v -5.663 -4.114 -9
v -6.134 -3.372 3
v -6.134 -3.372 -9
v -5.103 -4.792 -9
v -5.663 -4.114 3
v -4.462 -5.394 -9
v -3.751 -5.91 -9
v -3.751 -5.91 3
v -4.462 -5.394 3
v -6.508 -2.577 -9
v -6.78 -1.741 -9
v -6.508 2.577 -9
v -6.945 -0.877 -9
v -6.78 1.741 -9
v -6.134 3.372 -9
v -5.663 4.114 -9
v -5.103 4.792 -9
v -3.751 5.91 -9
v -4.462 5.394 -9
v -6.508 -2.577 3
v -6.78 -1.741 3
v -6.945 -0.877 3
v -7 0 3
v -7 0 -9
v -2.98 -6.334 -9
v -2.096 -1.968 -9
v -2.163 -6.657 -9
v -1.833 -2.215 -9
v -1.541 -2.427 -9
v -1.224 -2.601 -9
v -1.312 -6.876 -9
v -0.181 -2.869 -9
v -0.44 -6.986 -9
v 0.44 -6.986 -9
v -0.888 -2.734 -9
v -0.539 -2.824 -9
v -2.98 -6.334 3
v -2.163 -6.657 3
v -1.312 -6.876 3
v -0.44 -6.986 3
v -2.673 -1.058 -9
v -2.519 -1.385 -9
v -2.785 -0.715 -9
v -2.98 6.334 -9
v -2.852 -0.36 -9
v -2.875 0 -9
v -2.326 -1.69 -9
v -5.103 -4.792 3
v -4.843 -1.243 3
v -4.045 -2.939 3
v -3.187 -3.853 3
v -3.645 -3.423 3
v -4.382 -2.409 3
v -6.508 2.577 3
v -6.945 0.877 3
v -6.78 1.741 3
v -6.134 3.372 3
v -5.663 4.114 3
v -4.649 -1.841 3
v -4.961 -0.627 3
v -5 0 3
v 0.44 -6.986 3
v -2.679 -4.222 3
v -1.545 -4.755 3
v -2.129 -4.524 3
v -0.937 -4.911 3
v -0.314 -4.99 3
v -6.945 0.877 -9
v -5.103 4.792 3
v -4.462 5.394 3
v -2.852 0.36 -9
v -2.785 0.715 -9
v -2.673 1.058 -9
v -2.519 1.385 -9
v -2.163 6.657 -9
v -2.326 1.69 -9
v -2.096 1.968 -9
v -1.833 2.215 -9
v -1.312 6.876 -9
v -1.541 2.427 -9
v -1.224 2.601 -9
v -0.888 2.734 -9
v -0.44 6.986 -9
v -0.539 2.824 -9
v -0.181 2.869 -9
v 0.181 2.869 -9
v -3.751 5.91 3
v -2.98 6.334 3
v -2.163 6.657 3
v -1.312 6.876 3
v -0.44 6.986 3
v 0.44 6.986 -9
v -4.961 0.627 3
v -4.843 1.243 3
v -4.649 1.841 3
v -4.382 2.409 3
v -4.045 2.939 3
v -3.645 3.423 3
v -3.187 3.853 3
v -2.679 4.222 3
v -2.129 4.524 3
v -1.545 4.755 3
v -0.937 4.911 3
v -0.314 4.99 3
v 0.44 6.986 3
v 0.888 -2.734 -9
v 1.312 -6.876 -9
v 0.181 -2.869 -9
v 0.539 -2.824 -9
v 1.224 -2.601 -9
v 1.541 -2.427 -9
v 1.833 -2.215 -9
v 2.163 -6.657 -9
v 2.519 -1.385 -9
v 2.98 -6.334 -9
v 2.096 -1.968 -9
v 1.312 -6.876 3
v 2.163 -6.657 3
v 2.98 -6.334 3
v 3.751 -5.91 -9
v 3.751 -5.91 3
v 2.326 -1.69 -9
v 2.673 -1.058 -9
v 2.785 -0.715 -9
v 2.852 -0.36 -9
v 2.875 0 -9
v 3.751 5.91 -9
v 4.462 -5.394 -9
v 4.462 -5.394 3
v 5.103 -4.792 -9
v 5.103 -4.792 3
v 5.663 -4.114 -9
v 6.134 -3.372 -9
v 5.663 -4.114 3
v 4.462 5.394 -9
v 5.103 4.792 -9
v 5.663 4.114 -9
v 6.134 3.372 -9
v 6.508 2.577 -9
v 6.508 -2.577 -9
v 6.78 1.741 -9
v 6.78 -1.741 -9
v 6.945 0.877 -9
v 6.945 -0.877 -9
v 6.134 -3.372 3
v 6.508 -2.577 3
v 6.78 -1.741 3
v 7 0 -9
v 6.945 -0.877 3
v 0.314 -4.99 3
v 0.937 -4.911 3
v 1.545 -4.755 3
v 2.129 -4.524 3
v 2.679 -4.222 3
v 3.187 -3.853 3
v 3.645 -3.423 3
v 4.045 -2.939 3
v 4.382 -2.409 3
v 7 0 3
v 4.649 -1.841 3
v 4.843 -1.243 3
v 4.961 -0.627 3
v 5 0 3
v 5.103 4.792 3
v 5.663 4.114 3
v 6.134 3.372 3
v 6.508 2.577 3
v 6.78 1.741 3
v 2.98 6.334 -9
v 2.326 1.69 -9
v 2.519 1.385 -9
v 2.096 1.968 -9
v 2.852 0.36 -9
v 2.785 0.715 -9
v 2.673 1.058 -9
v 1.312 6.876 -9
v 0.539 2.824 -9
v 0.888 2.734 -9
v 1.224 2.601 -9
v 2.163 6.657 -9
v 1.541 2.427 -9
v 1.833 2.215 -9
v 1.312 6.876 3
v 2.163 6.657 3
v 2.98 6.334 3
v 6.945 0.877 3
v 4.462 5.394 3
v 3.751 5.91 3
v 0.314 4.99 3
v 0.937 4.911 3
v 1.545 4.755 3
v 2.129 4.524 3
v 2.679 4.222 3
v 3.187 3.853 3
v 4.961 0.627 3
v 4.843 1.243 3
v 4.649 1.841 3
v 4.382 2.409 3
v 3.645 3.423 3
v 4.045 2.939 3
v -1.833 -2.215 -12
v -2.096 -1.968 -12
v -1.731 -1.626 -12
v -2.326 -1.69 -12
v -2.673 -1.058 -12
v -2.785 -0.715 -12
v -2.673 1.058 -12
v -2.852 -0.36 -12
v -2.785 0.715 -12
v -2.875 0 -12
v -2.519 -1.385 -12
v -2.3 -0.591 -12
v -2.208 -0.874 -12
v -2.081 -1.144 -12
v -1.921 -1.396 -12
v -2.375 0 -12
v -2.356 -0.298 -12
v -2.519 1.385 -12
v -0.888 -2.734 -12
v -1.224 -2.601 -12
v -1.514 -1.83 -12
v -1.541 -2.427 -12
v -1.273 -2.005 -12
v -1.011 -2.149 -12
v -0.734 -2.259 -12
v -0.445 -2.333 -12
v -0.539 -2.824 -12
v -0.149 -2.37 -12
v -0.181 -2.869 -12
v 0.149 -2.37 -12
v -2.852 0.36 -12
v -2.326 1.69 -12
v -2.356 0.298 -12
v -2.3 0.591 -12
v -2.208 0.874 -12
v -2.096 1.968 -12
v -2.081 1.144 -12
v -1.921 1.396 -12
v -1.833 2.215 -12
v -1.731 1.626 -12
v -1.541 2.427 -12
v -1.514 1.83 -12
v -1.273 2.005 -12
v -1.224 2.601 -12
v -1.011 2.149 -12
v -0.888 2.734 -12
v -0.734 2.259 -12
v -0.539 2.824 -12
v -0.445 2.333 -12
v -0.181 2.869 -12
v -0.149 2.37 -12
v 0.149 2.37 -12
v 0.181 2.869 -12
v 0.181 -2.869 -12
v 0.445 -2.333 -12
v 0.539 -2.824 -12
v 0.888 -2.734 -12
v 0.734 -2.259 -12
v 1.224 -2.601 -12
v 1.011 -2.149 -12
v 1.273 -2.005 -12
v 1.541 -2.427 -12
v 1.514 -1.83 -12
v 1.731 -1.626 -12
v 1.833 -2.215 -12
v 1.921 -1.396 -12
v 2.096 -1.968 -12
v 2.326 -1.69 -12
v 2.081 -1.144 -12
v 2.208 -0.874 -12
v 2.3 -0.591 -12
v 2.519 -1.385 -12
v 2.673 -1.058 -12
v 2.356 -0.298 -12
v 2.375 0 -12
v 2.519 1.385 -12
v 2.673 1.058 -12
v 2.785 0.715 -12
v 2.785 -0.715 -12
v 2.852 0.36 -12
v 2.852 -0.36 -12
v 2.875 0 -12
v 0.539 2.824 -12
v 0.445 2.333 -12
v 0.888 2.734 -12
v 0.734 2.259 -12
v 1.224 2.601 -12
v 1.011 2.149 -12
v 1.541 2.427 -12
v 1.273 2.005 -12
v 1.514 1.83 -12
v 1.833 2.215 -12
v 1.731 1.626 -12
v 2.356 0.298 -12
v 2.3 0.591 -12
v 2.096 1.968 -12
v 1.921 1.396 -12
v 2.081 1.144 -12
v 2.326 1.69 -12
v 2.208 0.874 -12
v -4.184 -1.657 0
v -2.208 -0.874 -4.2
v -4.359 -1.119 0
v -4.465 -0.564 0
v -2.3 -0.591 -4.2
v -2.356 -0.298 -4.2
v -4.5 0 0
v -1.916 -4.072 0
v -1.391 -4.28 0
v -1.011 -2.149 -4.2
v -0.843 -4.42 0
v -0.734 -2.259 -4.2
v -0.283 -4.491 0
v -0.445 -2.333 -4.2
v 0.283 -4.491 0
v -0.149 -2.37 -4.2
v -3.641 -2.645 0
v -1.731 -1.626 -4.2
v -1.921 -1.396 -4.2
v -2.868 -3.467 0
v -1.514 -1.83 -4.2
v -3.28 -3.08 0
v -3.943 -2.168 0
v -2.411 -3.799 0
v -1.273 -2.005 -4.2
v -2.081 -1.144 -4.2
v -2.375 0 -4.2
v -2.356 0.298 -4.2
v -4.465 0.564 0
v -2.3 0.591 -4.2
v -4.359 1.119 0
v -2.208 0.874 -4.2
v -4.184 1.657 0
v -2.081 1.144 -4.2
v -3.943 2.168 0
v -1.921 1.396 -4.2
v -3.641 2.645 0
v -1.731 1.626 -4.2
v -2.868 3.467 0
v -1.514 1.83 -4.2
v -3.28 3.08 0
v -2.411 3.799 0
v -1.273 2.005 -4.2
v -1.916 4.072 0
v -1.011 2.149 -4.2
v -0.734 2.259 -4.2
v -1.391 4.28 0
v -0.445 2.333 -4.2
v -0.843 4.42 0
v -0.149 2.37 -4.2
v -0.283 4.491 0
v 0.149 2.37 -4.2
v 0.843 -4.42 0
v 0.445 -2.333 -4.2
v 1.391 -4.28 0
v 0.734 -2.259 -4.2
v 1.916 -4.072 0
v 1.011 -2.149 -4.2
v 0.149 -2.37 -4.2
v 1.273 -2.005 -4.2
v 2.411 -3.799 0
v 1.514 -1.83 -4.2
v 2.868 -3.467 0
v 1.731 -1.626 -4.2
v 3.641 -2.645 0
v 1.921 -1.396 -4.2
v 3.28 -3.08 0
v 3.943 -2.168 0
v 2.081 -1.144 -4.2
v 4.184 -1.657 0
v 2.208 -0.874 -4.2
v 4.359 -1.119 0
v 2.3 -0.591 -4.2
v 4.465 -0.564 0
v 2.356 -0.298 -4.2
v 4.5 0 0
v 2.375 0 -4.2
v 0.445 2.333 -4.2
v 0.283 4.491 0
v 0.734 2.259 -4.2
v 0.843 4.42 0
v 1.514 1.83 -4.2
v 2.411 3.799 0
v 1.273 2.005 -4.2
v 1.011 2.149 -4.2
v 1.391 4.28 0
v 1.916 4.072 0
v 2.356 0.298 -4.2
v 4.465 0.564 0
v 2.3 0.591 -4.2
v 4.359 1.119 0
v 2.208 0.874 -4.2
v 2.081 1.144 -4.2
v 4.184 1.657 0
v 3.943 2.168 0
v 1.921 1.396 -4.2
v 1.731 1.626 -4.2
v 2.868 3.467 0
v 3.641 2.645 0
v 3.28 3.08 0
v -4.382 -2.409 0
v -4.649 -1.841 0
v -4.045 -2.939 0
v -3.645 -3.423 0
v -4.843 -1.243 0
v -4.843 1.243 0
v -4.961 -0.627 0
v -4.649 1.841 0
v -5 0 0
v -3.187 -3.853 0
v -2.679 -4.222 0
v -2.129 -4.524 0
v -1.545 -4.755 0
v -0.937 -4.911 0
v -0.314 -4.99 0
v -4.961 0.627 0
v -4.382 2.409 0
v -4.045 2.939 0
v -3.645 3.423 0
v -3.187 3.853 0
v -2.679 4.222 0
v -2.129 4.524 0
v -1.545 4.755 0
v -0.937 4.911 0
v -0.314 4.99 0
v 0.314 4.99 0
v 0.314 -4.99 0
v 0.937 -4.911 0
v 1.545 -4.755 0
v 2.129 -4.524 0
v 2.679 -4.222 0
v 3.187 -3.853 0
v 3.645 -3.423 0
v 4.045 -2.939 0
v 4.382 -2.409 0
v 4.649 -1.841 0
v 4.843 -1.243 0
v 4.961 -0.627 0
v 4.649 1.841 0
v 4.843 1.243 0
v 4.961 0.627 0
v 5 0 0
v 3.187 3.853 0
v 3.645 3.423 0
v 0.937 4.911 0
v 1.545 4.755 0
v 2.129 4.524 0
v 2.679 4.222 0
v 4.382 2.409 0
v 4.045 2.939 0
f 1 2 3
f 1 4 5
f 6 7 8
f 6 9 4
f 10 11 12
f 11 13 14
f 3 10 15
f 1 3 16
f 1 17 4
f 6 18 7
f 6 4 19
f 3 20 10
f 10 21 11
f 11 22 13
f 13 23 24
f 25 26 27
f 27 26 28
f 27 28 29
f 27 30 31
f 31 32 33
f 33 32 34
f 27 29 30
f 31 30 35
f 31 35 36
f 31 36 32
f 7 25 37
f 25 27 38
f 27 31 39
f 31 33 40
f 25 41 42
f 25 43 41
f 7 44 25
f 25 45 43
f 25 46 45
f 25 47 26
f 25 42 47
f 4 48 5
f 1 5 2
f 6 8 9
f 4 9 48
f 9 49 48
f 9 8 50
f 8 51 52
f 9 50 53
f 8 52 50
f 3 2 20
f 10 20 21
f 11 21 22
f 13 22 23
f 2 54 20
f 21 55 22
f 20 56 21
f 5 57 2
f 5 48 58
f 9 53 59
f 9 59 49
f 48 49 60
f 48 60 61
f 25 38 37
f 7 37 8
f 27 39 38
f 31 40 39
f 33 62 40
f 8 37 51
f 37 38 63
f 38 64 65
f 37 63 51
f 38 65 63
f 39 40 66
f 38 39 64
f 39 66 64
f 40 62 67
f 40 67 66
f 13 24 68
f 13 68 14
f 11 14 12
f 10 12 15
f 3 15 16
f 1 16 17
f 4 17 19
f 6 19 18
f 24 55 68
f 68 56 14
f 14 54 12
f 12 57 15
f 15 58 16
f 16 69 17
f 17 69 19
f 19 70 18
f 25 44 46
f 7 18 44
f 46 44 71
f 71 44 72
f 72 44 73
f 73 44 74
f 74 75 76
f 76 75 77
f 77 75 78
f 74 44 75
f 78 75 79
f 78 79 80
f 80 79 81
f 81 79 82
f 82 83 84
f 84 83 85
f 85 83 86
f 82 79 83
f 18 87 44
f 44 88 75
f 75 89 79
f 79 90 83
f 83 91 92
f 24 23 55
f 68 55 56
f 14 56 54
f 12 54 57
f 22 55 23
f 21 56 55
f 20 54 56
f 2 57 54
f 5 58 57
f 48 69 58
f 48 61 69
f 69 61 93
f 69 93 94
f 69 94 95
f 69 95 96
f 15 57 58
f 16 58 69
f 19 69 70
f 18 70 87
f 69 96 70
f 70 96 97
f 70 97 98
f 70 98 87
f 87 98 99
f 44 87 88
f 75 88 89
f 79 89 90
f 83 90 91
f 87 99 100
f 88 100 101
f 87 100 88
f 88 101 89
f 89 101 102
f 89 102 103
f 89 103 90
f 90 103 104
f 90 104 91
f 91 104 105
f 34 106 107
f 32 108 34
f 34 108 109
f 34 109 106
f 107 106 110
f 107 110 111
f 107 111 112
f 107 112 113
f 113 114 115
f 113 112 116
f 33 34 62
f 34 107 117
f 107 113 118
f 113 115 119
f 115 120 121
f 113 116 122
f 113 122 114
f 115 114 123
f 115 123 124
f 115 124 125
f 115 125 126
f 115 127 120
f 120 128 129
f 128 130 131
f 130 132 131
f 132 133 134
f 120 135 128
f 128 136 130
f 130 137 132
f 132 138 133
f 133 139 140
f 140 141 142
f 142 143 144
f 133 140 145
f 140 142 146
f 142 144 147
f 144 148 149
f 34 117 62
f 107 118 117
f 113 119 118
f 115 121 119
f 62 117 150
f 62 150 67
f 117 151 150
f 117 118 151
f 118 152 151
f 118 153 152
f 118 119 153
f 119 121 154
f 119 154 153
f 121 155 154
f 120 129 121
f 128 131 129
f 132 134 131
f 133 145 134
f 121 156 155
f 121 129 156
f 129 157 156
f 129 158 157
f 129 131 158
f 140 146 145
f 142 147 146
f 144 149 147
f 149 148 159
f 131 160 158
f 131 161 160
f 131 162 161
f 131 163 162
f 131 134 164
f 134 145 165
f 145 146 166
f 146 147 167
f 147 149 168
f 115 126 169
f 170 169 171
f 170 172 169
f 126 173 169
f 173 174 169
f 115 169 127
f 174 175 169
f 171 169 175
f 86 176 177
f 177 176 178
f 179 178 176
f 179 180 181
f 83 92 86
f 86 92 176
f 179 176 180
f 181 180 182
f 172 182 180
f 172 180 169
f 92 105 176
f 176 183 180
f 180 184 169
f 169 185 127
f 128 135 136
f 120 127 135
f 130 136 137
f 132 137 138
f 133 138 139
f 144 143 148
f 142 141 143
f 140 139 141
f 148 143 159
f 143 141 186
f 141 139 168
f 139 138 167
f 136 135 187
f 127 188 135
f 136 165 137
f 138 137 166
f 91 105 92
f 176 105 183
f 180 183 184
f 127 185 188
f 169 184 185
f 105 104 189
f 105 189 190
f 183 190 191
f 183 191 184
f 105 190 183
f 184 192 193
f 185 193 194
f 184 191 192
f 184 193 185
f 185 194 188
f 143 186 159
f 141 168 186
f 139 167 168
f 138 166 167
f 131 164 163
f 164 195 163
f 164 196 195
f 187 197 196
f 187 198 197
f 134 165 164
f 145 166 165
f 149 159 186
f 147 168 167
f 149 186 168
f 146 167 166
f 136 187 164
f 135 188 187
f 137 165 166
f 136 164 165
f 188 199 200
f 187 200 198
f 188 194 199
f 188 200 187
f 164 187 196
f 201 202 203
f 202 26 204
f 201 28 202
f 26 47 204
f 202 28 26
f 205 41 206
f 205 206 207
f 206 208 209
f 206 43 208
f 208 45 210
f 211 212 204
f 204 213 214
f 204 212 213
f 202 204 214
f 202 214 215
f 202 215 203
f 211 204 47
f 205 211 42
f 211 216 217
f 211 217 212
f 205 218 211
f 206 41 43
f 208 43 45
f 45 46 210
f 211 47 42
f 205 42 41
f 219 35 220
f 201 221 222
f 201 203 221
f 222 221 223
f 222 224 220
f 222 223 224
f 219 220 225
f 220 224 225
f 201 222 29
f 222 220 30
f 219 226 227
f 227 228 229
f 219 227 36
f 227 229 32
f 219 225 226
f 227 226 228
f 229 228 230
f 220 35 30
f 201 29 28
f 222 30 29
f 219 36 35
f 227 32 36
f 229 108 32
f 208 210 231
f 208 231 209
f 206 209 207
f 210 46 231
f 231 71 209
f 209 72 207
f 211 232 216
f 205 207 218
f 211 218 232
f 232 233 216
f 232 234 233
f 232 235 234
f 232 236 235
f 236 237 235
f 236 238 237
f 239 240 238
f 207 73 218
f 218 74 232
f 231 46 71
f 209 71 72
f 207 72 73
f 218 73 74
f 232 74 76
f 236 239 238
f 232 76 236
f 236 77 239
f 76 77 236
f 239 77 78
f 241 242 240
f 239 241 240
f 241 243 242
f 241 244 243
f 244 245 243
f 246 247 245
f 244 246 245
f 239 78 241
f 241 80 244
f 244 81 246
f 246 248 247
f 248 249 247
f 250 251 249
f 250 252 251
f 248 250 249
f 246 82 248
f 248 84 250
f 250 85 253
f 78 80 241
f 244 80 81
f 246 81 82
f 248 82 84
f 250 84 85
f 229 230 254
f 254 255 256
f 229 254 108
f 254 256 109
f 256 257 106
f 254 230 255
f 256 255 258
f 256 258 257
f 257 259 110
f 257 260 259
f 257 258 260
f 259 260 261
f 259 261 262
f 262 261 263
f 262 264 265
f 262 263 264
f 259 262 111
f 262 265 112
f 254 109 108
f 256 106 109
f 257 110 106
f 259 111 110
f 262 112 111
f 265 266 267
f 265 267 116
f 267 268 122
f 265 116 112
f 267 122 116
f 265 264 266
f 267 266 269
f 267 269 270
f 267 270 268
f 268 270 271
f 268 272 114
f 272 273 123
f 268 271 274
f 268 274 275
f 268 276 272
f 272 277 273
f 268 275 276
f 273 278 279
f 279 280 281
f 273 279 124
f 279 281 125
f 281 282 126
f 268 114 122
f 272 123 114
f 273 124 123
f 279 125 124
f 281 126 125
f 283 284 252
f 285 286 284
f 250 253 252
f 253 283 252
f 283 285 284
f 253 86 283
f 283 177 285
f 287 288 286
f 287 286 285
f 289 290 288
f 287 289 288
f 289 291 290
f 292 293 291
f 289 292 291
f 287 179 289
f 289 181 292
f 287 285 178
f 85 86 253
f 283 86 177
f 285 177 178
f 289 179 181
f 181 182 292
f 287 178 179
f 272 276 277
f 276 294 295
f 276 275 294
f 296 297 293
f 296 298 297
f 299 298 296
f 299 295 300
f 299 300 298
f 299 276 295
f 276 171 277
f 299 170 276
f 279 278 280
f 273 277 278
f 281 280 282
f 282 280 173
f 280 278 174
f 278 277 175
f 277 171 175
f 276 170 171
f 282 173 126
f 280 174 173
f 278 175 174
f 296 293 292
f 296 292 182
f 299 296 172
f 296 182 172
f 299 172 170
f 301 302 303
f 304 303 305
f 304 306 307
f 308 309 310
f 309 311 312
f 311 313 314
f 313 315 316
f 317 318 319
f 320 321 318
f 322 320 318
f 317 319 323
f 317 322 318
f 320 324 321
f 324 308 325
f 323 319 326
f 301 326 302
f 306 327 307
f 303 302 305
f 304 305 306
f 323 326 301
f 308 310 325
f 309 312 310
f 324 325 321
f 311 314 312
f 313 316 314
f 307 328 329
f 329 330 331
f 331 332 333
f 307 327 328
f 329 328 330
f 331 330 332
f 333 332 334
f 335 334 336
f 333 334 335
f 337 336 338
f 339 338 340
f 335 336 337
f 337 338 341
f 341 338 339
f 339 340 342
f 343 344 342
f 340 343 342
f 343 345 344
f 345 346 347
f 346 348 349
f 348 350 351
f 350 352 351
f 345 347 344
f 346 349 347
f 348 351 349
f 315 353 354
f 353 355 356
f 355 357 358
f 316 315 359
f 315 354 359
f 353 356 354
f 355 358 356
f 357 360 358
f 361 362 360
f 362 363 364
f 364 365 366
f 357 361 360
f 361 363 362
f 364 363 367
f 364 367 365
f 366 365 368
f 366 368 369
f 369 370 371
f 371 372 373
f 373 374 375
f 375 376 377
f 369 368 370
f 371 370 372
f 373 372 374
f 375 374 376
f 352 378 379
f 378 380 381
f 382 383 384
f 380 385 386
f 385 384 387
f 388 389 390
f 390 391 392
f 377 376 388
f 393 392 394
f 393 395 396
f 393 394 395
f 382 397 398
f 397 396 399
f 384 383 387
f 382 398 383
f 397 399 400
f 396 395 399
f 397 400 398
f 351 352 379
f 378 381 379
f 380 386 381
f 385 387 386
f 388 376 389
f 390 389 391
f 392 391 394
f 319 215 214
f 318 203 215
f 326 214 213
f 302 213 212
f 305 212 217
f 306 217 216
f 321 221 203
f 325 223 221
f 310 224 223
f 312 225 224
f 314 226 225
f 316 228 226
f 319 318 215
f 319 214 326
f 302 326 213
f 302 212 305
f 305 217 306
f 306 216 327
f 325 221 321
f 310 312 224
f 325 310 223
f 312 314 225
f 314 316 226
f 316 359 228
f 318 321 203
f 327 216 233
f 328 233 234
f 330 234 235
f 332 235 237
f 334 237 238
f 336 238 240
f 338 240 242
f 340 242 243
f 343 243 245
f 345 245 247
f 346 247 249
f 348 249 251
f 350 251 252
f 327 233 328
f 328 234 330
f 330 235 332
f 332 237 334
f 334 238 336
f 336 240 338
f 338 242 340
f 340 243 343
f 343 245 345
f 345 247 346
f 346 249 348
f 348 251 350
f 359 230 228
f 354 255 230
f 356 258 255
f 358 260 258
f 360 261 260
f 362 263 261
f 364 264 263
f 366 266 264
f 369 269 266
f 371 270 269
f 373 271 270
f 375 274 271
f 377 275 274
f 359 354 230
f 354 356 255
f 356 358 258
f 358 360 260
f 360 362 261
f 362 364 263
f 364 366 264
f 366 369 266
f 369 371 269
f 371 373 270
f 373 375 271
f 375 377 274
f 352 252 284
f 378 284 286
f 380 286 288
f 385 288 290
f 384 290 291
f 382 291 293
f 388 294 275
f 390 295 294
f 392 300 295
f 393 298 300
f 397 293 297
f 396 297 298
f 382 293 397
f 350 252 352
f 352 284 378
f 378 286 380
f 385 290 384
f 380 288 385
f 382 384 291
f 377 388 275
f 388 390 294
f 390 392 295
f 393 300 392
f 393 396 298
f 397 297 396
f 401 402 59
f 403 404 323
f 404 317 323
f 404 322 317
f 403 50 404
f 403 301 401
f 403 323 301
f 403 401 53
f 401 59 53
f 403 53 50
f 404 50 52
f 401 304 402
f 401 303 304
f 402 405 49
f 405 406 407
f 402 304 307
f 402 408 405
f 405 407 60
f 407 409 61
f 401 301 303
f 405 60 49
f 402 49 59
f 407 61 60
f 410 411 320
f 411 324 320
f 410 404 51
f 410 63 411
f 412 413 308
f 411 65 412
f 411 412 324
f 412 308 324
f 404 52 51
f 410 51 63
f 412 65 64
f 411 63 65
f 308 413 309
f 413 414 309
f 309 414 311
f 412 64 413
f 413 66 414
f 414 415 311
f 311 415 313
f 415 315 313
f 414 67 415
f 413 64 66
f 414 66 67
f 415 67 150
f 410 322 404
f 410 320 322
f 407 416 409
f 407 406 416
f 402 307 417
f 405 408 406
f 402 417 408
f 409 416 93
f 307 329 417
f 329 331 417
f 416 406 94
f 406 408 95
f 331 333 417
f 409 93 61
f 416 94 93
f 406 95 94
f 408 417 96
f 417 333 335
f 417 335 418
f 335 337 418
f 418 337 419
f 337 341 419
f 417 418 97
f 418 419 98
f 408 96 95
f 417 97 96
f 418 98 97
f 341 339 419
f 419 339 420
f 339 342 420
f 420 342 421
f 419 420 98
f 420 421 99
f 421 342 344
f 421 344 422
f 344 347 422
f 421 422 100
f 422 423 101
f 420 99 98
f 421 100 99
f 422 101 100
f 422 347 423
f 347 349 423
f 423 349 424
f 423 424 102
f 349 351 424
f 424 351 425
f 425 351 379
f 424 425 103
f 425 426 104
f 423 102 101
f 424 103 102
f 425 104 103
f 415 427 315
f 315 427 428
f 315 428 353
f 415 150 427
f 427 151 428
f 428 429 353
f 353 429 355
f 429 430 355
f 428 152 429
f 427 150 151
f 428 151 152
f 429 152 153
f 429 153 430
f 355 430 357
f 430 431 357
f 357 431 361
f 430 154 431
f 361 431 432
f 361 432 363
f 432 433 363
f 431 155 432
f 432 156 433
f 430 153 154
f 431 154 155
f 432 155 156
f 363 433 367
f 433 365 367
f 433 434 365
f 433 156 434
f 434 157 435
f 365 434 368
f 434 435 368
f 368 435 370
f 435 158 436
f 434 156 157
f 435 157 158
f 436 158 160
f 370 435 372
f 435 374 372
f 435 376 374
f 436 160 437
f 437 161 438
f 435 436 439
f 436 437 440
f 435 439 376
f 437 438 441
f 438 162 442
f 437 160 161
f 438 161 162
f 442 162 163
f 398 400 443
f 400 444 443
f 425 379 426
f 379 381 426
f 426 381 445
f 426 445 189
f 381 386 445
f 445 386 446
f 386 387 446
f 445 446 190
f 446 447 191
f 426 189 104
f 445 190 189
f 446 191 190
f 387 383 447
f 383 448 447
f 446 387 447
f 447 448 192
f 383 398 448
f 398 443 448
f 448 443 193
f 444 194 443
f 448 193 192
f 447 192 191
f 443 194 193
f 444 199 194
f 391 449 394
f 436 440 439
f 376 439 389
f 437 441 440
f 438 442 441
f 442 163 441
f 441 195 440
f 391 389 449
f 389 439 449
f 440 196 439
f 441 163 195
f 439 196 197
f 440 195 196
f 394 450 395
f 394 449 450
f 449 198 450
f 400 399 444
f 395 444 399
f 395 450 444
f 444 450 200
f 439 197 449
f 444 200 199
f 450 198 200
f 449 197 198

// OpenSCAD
$fn = 50;

difference() {
	union() {
		translate(v = [0, 0, -9.0]) {
			cylinder(h = 12, r = 7.0);
		}
		#translate(v = [0, 0, -12.0]) {
			cylinder(h = 12, r = 2.875);
		}
	}
	union() {
		translate(v = [0, 0, 0]) {
			rotate(a = [0, 0, 0]) {
				difference() {
					union() {
						translate(v = [0, 0, -12.0]) {
							cylinder(h = 12, r = 2.25);
						}
						translate(v = [0, 0, -4.2]) {
							cylinder(h = 4.2, r1 = 2.375, r2 = 4.5);
						}
						translate(v = [0, 0, -12.0]) {
							cylinder(h = 12, r = 2.375);
						}
						translate(v = [0, 0, -12.0]) {
							cylinder(h = 12, r = 2.25);
						}
					}
					union();
				}
			}
		}
		#cylinder(h = 3, r = 5.0);
	}
}
